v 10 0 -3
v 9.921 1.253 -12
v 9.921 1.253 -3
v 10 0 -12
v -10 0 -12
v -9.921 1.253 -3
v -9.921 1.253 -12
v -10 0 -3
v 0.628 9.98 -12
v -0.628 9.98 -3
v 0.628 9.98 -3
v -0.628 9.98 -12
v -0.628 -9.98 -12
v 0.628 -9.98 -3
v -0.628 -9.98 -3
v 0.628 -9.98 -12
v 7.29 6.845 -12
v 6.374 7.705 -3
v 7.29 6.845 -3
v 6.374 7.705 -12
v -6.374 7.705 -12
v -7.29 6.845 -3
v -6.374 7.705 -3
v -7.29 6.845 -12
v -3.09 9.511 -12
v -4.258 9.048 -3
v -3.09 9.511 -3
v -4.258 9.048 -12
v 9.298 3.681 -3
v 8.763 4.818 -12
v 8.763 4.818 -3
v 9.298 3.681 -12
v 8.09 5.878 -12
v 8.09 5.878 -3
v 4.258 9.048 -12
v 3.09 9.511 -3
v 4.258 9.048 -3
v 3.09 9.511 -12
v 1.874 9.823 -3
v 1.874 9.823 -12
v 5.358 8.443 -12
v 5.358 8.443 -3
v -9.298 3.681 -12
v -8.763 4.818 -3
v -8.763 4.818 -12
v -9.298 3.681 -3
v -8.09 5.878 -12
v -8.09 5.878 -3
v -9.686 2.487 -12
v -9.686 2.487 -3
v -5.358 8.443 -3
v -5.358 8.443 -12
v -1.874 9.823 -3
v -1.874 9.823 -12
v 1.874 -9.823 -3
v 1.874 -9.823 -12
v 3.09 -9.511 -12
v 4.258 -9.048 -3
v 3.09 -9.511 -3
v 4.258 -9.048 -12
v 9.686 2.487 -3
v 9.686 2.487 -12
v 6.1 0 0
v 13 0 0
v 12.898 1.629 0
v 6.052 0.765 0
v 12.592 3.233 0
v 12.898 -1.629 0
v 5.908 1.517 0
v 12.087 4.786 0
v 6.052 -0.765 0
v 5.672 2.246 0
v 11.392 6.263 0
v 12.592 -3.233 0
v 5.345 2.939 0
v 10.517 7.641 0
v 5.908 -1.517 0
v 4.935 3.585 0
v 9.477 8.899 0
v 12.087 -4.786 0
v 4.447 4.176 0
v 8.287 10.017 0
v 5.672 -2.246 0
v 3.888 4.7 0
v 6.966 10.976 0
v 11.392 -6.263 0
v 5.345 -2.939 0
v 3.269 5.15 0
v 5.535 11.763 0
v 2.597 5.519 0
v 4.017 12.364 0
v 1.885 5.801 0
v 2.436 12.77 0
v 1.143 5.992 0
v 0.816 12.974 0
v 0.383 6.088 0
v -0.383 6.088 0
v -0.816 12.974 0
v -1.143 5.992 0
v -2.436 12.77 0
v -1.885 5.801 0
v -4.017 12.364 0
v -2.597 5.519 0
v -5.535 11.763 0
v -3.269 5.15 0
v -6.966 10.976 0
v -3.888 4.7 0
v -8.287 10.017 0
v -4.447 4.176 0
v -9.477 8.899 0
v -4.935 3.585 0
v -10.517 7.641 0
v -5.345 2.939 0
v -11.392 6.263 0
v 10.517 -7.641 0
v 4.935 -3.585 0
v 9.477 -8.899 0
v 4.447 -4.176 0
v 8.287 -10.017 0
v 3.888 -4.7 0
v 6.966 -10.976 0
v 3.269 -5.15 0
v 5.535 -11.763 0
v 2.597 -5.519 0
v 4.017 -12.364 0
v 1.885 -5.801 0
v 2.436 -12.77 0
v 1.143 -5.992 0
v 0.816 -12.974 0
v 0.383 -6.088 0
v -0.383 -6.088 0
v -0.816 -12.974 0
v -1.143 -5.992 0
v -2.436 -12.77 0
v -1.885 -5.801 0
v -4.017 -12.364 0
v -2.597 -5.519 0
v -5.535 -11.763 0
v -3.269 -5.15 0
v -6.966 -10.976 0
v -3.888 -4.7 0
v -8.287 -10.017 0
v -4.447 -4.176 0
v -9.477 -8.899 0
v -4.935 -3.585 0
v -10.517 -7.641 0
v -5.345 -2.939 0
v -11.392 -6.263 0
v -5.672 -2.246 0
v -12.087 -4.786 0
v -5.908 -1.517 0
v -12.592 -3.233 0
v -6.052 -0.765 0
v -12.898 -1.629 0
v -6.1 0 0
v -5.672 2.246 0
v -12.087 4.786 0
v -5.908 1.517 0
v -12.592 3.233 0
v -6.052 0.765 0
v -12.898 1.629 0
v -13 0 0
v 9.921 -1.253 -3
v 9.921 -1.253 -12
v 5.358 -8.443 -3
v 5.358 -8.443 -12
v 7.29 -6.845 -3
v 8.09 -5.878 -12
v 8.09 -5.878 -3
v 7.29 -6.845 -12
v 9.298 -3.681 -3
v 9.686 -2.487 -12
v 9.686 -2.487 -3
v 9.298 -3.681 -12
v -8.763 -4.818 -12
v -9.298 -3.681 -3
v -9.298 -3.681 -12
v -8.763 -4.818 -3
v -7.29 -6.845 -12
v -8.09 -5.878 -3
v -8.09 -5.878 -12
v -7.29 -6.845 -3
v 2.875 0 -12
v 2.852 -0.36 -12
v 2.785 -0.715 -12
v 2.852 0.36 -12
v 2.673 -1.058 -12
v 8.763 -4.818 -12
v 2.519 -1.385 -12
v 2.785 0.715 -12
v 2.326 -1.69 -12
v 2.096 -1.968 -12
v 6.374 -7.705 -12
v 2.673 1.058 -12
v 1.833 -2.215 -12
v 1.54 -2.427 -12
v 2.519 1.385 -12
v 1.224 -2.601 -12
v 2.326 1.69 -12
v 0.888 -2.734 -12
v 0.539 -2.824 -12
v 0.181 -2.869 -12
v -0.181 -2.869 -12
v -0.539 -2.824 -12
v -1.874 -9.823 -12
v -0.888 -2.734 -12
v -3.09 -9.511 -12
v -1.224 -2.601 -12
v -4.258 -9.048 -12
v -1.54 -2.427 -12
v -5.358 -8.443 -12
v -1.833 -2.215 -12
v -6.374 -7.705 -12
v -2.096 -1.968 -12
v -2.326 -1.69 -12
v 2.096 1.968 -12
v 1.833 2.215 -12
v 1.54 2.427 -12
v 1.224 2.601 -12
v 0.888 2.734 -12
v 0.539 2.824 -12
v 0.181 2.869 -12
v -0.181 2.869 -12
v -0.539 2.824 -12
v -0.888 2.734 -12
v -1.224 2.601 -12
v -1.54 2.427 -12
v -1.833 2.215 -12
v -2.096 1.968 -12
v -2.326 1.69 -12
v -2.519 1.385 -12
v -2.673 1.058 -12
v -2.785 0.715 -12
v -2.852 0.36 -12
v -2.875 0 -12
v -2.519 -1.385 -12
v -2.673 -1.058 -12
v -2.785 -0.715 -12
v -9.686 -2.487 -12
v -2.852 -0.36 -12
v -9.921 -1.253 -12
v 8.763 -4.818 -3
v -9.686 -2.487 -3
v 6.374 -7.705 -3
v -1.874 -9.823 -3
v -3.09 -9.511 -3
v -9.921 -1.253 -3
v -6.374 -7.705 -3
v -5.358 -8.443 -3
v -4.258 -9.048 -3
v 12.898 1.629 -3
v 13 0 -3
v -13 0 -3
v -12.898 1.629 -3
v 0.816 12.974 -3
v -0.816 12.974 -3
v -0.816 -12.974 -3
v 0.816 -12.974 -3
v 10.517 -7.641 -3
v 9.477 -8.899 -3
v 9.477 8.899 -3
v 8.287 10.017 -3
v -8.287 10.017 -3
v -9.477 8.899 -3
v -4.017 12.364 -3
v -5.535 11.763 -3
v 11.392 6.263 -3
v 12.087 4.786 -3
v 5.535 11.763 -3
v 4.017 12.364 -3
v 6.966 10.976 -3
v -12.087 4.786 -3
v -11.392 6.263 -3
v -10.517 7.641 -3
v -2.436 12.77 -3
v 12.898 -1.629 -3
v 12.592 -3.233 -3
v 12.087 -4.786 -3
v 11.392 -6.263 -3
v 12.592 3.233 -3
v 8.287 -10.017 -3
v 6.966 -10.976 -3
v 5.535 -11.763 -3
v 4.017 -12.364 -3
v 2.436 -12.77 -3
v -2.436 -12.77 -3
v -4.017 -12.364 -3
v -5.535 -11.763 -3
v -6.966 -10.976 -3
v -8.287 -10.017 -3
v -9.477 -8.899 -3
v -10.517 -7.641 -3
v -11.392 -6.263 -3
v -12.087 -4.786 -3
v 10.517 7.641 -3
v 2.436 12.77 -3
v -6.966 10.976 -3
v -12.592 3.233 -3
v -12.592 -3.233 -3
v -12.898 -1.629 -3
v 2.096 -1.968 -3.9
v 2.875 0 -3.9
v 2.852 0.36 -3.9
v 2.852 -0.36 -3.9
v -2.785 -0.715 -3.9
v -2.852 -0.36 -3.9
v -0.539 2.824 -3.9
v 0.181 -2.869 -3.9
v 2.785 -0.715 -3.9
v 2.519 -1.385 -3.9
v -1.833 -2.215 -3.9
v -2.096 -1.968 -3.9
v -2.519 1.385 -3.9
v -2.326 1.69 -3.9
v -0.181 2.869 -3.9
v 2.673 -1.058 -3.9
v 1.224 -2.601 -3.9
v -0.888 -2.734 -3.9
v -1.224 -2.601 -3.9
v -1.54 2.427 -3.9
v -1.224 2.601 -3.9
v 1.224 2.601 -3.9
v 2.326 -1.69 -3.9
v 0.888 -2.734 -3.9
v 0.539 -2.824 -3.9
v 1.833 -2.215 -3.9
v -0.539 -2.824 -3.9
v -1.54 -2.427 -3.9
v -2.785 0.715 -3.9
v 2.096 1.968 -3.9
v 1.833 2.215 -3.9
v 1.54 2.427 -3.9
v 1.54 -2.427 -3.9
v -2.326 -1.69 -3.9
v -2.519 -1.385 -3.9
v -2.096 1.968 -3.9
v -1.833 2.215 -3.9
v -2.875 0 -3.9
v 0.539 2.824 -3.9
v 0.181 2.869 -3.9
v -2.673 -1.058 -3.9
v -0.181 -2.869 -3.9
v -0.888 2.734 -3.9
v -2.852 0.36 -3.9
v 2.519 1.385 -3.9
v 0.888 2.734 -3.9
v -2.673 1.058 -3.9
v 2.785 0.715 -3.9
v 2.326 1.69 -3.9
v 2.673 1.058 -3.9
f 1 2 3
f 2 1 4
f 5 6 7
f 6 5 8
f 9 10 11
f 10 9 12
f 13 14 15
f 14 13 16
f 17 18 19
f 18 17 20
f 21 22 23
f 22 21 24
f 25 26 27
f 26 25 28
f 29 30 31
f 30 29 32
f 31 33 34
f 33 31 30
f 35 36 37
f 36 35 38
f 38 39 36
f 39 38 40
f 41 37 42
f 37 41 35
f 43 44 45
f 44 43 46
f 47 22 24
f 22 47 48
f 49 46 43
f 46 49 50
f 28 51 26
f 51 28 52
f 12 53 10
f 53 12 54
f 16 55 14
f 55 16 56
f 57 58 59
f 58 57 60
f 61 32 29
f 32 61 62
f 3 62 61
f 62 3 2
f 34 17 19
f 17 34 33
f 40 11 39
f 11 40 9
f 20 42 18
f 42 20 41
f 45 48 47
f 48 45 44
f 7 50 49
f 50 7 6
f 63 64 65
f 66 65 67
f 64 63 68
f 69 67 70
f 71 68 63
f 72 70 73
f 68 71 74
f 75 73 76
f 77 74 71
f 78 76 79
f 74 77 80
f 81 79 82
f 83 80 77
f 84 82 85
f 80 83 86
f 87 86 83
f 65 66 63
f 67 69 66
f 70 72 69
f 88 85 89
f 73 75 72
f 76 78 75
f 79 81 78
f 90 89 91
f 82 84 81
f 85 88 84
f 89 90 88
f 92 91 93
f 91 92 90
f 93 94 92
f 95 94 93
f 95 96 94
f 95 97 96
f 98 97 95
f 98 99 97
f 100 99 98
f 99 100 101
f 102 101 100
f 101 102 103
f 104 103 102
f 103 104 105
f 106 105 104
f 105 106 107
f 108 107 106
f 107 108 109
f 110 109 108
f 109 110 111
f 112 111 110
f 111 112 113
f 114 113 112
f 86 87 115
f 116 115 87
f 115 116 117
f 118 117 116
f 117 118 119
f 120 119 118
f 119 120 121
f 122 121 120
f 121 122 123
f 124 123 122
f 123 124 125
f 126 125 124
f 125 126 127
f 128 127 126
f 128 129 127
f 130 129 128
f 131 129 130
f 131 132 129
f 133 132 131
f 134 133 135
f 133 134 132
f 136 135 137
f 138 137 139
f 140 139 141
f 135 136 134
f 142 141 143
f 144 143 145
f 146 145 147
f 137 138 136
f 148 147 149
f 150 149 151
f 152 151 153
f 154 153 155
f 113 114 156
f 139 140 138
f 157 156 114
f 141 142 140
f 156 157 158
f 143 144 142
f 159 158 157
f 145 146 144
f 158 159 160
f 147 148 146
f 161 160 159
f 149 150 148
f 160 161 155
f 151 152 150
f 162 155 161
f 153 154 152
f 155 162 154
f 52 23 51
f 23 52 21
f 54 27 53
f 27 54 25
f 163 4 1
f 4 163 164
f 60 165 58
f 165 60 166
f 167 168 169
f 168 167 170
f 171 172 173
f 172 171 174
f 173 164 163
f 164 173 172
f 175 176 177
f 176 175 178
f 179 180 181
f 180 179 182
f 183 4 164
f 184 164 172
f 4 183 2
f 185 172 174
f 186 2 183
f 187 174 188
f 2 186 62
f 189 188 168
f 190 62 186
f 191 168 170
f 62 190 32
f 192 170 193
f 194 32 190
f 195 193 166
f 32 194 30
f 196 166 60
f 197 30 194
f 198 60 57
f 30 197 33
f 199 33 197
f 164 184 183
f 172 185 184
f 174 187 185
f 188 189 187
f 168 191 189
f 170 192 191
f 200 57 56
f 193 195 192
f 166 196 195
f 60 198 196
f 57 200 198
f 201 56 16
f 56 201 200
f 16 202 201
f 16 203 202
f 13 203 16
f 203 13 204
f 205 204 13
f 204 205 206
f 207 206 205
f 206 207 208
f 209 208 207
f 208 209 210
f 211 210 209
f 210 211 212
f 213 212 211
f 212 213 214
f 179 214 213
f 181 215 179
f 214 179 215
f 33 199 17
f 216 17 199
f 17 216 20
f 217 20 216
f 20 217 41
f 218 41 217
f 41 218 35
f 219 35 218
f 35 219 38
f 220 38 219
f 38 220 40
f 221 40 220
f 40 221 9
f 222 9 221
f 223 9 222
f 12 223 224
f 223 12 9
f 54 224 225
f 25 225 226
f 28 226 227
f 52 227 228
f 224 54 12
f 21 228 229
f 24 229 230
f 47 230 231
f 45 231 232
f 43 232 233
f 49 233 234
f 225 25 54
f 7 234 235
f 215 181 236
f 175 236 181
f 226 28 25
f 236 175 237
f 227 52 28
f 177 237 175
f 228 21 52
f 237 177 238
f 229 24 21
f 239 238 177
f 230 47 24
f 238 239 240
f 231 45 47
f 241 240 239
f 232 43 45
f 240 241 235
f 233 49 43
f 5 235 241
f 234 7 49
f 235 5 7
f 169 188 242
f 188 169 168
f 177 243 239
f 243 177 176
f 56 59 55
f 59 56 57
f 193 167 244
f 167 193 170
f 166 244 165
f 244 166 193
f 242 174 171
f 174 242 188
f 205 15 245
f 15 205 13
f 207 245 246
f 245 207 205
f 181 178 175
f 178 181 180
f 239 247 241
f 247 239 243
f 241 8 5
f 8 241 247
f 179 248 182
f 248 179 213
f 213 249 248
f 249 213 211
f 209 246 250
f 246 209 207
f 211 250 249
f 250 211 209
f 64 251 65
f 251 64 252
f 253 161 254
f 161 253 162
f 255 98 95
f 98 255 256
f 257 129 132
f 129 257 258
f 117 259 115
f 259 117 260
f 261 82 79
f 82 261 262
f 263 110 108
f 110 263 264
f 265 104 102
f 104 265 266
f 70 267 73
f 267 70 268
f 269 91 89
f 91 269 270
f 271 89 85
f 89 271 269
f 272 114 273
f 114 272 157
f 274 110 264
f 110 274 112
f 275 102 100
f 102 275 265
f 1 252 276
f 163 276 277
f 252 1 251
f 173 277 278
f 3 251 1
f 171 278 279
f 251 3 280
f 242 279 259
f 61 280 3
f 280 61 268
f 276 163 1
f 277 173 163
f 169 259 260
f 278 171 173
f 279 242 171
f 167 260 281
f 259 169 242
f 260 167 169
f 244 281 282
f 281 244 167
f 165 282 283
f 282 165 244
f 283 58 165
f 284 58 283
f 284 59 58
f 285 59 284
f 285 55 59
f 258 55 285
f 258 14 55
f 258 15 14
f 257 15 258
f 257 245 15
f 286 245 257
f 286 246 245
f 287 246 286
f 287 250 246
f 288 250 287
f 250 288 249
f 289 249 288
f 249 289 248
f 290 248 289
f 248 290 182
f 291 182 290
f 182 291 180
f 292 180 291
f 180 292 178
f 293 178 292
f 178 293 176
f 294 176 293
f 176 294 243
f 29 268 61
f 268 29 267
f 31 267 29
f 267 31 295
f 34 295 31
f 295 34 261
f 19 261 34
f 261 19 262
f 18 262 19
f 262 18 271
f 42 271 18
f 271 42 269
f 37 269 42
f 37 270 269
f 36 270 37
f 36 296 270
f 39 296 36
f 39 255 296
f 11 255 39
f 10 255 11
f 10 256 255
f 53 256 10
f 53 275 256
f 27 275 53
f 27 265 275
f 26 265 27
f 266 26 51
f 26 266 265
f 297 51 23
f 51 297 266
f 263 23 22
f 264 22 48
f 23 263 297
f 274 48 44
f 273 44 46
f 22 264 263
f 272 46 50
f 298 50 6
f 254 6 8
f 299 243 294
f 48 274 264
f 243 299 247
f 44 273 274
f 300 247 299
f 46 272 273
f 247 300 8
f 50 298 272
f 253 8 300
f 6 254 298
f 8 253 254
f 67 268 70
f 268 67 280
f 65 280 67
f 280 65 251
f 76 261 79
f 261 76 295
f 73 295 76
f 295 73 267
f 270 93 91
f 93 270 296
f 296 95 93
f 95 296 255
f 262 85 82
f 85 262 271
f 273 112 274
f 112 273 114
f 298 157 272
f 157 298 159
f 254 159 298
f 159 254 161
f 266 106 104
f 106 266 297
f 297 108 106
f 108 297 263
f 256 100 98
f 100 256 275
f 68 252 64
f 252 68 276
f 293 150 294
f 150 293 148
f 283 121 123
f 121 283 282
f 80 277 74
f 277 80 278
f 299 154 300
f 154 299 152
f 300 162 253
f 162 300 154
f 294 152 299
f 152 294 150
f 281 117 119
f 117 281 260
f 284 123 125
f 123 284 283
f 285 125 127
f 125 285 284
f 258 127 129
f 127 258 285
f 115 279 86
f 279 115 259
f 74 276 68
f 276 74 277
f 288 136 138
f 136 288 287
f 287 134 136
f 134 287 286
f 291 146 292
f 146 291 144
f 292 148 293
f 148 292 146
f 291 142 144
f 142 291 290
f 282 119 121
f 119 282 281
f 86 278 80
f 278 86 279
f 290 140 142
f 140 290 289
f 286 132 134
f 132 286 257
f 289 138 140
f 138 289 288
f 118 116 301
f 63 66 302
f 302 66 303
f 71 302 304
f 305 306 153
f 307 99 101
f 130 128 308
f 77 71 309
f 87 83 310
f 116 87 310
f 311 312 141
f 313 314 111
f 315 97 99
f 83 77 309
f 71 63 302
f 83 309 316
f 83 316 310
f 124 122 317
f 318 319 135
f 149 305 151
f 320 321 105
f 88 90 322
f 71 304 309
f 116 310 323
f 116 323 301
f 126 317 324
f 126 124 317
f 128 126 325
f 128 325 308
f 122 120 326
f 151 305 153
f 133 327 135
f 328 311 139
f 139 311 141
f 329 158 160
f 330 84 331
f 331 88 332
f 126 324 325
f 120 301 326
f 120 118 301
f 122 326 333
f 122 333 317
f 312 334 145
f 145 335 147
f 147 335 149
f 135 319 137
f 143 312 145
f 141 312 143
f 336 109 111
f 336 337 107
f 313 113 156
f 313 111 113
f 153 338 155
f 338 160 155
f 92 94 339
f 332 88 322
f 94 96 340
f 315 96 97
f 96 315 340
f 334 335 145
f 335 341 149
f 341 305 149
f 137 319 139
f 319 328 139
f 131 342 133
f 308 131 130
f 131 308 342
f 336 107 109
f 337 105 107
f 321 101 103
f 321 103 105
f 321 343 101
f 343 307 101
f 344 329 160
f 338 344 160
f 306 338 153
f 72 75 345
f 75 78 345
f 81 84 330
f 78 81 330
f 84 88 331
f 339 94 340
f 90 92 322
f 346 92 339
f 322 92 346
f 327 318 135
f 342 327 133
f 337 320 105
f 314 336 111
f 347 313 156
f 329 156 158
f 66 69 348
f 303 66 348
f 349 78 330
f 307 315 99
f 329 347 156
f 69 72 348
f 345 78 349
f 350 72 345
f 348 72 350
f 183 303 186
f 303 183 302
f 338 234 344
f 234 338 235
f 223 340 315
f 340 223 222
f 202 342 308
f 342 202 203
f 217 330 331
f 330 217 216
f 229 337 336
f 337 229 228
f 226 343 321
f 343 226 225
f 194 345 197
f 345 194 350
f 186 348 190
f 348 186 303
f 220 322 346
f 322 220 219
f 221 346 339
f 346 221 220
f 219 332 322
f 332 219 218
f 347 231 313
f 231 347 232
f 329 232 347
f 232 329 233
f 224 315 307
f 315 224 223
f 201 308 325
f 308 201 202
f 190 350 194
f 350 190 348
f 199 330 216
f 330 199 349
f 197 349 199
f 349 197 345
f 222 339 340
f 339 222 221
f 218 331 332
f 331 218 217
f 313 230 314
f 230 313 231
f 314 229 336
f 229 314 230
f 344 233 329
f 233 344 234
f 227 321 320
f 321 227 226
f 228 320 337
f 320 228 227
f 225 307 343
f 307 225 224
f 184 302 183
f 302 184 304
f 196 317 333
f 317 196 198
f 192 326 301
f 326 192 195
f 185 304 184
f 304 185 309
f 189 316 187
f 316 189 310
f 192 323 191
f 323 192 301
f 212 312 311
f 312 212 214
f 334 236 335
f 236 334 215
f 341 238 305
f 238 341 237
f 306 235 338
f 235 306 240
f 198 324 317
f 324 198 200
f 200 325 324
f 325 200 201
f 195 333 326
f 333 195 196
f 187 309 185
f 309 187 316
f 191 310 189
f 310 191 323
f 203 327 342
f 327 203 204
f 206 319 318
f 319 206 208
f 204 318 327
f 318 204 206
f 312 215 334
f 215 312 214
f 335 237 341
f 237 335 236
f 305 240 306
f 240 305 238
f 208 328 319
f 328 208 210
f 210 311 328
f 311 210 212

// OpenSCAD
$fn = 50;


difference() {
	union() {
		translate(v = [0, 0, -12.0000000000]) {
			cylinder(h = 12, r = 10.0000000000);
		}
		translate(v = [0, 0, -3.0000000000]) {
			cylinder(h = 3, r = 13.0000000000);
		}
	}
	union() {
		translate(v = [0, 0, 0]) {
			rotate(a = [0, 0, 0]) {
				difference() {
					union() {
						translate(v = [0, 0, -12.0000000000]) {
							cylinder(h = 12, r = 2.6000000000);
						}
						translate(v = [0, 0, -3.9000000000]) {
							cylinder(h = 3.9000000000, r = 10.0000000000, r1 = 2.8750000000, r2 = 6.1000000000);
						}
						translate(v = [0, 0, -12.0000000000]) {
							cylinder(h = 12, r = 2.8750000000);
						}
						translate(v = [0, 0, -12.0000000000]) {
							cylinder(h = 12, r = 2.6000000000);
						}
					}
					union();
				}
			}
		}
	}
}
